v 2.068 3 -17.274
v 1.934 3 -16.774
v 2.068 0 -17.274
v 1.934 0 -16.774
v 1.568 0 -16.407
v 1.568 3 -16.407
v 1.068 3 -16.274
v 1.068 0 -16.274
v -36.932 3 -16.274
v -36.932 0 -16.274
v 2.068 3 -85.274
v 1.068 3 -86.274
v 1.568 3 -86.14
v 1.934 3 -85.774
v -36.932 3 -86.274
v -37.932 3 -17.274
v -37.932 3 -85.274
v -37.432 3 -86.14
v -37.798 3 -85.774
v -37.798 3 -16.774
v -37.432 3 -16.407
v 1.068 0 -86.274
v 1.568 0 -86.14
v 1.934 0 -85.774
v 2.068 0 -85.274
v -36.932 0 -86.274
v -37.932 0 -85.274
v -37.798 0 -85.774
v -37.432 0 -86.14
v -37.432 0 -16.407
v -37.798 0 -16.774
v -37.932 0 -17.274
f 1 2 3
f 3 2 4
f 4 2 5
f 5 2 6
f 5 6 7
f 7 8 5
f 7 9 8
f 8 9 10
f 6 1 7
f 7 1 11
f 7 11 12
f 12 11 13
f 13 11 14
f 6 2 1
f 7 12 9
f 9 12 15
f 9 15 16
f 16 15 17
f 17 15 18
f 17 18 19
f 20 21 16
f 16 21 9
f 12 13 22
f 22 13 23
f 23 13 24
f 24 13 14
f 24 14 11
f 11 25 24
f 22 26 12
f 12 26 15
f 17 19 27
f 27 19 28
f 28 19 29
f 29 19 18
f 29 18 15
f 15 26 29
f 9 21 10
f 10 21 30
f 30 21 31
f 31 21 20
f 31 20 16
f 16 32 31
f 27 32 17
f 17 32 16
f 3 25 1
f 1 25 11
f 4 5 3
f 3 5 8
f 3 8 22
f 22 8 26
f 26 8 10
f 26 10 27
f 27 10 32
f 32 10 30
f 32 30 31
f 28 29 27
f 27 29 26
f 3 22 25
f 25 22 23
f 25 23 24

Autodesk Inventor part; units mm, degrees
ref_plane "YZ Plane" through (0, 0, 0) normal (1, 0, 0) x (0, 1, 0)
ref_plane "XZ Plane" through (0, 0, 0) normal (0, 1, 0) x (-1, 0, 0)
ref_plane "XY Plane" through (0, 0, 0) normal (0, 0, 1) x (1, 0, 0)
sketch "Skizze1" plane through (0, 0, 0) normal (0, 1, 0) x (-1, 0, 0)
  line L0 (37.9316, -16.2735) -> (-2.0684, -16.2735)
  line L1 (-2.0684, -16.2735) -> (-2.0684, -86.2735)
  line L2 (-2.0684, -86.2735) -> (37.9316, -86.2735)
  line L3 (37.9316, -86.2735) -> (37.9316, -16.2735)
  point P0 (0, 0)
  dimension "d0" = 70
  dimension "d1" = 40
extrude "Extrusion1" add sketch "Skizze1" along normal blind 3
fillet "Rundung1" radius 1 4 edges at (-37.9316, 1.5, -16.2735) (-37.9316, 1.5, -86.2735) (2.0684, 1.5, -86.2735) (2.0684, 1.5, -16.2735)
properties part number "Spielstraßenschild_Teil_Oben"
